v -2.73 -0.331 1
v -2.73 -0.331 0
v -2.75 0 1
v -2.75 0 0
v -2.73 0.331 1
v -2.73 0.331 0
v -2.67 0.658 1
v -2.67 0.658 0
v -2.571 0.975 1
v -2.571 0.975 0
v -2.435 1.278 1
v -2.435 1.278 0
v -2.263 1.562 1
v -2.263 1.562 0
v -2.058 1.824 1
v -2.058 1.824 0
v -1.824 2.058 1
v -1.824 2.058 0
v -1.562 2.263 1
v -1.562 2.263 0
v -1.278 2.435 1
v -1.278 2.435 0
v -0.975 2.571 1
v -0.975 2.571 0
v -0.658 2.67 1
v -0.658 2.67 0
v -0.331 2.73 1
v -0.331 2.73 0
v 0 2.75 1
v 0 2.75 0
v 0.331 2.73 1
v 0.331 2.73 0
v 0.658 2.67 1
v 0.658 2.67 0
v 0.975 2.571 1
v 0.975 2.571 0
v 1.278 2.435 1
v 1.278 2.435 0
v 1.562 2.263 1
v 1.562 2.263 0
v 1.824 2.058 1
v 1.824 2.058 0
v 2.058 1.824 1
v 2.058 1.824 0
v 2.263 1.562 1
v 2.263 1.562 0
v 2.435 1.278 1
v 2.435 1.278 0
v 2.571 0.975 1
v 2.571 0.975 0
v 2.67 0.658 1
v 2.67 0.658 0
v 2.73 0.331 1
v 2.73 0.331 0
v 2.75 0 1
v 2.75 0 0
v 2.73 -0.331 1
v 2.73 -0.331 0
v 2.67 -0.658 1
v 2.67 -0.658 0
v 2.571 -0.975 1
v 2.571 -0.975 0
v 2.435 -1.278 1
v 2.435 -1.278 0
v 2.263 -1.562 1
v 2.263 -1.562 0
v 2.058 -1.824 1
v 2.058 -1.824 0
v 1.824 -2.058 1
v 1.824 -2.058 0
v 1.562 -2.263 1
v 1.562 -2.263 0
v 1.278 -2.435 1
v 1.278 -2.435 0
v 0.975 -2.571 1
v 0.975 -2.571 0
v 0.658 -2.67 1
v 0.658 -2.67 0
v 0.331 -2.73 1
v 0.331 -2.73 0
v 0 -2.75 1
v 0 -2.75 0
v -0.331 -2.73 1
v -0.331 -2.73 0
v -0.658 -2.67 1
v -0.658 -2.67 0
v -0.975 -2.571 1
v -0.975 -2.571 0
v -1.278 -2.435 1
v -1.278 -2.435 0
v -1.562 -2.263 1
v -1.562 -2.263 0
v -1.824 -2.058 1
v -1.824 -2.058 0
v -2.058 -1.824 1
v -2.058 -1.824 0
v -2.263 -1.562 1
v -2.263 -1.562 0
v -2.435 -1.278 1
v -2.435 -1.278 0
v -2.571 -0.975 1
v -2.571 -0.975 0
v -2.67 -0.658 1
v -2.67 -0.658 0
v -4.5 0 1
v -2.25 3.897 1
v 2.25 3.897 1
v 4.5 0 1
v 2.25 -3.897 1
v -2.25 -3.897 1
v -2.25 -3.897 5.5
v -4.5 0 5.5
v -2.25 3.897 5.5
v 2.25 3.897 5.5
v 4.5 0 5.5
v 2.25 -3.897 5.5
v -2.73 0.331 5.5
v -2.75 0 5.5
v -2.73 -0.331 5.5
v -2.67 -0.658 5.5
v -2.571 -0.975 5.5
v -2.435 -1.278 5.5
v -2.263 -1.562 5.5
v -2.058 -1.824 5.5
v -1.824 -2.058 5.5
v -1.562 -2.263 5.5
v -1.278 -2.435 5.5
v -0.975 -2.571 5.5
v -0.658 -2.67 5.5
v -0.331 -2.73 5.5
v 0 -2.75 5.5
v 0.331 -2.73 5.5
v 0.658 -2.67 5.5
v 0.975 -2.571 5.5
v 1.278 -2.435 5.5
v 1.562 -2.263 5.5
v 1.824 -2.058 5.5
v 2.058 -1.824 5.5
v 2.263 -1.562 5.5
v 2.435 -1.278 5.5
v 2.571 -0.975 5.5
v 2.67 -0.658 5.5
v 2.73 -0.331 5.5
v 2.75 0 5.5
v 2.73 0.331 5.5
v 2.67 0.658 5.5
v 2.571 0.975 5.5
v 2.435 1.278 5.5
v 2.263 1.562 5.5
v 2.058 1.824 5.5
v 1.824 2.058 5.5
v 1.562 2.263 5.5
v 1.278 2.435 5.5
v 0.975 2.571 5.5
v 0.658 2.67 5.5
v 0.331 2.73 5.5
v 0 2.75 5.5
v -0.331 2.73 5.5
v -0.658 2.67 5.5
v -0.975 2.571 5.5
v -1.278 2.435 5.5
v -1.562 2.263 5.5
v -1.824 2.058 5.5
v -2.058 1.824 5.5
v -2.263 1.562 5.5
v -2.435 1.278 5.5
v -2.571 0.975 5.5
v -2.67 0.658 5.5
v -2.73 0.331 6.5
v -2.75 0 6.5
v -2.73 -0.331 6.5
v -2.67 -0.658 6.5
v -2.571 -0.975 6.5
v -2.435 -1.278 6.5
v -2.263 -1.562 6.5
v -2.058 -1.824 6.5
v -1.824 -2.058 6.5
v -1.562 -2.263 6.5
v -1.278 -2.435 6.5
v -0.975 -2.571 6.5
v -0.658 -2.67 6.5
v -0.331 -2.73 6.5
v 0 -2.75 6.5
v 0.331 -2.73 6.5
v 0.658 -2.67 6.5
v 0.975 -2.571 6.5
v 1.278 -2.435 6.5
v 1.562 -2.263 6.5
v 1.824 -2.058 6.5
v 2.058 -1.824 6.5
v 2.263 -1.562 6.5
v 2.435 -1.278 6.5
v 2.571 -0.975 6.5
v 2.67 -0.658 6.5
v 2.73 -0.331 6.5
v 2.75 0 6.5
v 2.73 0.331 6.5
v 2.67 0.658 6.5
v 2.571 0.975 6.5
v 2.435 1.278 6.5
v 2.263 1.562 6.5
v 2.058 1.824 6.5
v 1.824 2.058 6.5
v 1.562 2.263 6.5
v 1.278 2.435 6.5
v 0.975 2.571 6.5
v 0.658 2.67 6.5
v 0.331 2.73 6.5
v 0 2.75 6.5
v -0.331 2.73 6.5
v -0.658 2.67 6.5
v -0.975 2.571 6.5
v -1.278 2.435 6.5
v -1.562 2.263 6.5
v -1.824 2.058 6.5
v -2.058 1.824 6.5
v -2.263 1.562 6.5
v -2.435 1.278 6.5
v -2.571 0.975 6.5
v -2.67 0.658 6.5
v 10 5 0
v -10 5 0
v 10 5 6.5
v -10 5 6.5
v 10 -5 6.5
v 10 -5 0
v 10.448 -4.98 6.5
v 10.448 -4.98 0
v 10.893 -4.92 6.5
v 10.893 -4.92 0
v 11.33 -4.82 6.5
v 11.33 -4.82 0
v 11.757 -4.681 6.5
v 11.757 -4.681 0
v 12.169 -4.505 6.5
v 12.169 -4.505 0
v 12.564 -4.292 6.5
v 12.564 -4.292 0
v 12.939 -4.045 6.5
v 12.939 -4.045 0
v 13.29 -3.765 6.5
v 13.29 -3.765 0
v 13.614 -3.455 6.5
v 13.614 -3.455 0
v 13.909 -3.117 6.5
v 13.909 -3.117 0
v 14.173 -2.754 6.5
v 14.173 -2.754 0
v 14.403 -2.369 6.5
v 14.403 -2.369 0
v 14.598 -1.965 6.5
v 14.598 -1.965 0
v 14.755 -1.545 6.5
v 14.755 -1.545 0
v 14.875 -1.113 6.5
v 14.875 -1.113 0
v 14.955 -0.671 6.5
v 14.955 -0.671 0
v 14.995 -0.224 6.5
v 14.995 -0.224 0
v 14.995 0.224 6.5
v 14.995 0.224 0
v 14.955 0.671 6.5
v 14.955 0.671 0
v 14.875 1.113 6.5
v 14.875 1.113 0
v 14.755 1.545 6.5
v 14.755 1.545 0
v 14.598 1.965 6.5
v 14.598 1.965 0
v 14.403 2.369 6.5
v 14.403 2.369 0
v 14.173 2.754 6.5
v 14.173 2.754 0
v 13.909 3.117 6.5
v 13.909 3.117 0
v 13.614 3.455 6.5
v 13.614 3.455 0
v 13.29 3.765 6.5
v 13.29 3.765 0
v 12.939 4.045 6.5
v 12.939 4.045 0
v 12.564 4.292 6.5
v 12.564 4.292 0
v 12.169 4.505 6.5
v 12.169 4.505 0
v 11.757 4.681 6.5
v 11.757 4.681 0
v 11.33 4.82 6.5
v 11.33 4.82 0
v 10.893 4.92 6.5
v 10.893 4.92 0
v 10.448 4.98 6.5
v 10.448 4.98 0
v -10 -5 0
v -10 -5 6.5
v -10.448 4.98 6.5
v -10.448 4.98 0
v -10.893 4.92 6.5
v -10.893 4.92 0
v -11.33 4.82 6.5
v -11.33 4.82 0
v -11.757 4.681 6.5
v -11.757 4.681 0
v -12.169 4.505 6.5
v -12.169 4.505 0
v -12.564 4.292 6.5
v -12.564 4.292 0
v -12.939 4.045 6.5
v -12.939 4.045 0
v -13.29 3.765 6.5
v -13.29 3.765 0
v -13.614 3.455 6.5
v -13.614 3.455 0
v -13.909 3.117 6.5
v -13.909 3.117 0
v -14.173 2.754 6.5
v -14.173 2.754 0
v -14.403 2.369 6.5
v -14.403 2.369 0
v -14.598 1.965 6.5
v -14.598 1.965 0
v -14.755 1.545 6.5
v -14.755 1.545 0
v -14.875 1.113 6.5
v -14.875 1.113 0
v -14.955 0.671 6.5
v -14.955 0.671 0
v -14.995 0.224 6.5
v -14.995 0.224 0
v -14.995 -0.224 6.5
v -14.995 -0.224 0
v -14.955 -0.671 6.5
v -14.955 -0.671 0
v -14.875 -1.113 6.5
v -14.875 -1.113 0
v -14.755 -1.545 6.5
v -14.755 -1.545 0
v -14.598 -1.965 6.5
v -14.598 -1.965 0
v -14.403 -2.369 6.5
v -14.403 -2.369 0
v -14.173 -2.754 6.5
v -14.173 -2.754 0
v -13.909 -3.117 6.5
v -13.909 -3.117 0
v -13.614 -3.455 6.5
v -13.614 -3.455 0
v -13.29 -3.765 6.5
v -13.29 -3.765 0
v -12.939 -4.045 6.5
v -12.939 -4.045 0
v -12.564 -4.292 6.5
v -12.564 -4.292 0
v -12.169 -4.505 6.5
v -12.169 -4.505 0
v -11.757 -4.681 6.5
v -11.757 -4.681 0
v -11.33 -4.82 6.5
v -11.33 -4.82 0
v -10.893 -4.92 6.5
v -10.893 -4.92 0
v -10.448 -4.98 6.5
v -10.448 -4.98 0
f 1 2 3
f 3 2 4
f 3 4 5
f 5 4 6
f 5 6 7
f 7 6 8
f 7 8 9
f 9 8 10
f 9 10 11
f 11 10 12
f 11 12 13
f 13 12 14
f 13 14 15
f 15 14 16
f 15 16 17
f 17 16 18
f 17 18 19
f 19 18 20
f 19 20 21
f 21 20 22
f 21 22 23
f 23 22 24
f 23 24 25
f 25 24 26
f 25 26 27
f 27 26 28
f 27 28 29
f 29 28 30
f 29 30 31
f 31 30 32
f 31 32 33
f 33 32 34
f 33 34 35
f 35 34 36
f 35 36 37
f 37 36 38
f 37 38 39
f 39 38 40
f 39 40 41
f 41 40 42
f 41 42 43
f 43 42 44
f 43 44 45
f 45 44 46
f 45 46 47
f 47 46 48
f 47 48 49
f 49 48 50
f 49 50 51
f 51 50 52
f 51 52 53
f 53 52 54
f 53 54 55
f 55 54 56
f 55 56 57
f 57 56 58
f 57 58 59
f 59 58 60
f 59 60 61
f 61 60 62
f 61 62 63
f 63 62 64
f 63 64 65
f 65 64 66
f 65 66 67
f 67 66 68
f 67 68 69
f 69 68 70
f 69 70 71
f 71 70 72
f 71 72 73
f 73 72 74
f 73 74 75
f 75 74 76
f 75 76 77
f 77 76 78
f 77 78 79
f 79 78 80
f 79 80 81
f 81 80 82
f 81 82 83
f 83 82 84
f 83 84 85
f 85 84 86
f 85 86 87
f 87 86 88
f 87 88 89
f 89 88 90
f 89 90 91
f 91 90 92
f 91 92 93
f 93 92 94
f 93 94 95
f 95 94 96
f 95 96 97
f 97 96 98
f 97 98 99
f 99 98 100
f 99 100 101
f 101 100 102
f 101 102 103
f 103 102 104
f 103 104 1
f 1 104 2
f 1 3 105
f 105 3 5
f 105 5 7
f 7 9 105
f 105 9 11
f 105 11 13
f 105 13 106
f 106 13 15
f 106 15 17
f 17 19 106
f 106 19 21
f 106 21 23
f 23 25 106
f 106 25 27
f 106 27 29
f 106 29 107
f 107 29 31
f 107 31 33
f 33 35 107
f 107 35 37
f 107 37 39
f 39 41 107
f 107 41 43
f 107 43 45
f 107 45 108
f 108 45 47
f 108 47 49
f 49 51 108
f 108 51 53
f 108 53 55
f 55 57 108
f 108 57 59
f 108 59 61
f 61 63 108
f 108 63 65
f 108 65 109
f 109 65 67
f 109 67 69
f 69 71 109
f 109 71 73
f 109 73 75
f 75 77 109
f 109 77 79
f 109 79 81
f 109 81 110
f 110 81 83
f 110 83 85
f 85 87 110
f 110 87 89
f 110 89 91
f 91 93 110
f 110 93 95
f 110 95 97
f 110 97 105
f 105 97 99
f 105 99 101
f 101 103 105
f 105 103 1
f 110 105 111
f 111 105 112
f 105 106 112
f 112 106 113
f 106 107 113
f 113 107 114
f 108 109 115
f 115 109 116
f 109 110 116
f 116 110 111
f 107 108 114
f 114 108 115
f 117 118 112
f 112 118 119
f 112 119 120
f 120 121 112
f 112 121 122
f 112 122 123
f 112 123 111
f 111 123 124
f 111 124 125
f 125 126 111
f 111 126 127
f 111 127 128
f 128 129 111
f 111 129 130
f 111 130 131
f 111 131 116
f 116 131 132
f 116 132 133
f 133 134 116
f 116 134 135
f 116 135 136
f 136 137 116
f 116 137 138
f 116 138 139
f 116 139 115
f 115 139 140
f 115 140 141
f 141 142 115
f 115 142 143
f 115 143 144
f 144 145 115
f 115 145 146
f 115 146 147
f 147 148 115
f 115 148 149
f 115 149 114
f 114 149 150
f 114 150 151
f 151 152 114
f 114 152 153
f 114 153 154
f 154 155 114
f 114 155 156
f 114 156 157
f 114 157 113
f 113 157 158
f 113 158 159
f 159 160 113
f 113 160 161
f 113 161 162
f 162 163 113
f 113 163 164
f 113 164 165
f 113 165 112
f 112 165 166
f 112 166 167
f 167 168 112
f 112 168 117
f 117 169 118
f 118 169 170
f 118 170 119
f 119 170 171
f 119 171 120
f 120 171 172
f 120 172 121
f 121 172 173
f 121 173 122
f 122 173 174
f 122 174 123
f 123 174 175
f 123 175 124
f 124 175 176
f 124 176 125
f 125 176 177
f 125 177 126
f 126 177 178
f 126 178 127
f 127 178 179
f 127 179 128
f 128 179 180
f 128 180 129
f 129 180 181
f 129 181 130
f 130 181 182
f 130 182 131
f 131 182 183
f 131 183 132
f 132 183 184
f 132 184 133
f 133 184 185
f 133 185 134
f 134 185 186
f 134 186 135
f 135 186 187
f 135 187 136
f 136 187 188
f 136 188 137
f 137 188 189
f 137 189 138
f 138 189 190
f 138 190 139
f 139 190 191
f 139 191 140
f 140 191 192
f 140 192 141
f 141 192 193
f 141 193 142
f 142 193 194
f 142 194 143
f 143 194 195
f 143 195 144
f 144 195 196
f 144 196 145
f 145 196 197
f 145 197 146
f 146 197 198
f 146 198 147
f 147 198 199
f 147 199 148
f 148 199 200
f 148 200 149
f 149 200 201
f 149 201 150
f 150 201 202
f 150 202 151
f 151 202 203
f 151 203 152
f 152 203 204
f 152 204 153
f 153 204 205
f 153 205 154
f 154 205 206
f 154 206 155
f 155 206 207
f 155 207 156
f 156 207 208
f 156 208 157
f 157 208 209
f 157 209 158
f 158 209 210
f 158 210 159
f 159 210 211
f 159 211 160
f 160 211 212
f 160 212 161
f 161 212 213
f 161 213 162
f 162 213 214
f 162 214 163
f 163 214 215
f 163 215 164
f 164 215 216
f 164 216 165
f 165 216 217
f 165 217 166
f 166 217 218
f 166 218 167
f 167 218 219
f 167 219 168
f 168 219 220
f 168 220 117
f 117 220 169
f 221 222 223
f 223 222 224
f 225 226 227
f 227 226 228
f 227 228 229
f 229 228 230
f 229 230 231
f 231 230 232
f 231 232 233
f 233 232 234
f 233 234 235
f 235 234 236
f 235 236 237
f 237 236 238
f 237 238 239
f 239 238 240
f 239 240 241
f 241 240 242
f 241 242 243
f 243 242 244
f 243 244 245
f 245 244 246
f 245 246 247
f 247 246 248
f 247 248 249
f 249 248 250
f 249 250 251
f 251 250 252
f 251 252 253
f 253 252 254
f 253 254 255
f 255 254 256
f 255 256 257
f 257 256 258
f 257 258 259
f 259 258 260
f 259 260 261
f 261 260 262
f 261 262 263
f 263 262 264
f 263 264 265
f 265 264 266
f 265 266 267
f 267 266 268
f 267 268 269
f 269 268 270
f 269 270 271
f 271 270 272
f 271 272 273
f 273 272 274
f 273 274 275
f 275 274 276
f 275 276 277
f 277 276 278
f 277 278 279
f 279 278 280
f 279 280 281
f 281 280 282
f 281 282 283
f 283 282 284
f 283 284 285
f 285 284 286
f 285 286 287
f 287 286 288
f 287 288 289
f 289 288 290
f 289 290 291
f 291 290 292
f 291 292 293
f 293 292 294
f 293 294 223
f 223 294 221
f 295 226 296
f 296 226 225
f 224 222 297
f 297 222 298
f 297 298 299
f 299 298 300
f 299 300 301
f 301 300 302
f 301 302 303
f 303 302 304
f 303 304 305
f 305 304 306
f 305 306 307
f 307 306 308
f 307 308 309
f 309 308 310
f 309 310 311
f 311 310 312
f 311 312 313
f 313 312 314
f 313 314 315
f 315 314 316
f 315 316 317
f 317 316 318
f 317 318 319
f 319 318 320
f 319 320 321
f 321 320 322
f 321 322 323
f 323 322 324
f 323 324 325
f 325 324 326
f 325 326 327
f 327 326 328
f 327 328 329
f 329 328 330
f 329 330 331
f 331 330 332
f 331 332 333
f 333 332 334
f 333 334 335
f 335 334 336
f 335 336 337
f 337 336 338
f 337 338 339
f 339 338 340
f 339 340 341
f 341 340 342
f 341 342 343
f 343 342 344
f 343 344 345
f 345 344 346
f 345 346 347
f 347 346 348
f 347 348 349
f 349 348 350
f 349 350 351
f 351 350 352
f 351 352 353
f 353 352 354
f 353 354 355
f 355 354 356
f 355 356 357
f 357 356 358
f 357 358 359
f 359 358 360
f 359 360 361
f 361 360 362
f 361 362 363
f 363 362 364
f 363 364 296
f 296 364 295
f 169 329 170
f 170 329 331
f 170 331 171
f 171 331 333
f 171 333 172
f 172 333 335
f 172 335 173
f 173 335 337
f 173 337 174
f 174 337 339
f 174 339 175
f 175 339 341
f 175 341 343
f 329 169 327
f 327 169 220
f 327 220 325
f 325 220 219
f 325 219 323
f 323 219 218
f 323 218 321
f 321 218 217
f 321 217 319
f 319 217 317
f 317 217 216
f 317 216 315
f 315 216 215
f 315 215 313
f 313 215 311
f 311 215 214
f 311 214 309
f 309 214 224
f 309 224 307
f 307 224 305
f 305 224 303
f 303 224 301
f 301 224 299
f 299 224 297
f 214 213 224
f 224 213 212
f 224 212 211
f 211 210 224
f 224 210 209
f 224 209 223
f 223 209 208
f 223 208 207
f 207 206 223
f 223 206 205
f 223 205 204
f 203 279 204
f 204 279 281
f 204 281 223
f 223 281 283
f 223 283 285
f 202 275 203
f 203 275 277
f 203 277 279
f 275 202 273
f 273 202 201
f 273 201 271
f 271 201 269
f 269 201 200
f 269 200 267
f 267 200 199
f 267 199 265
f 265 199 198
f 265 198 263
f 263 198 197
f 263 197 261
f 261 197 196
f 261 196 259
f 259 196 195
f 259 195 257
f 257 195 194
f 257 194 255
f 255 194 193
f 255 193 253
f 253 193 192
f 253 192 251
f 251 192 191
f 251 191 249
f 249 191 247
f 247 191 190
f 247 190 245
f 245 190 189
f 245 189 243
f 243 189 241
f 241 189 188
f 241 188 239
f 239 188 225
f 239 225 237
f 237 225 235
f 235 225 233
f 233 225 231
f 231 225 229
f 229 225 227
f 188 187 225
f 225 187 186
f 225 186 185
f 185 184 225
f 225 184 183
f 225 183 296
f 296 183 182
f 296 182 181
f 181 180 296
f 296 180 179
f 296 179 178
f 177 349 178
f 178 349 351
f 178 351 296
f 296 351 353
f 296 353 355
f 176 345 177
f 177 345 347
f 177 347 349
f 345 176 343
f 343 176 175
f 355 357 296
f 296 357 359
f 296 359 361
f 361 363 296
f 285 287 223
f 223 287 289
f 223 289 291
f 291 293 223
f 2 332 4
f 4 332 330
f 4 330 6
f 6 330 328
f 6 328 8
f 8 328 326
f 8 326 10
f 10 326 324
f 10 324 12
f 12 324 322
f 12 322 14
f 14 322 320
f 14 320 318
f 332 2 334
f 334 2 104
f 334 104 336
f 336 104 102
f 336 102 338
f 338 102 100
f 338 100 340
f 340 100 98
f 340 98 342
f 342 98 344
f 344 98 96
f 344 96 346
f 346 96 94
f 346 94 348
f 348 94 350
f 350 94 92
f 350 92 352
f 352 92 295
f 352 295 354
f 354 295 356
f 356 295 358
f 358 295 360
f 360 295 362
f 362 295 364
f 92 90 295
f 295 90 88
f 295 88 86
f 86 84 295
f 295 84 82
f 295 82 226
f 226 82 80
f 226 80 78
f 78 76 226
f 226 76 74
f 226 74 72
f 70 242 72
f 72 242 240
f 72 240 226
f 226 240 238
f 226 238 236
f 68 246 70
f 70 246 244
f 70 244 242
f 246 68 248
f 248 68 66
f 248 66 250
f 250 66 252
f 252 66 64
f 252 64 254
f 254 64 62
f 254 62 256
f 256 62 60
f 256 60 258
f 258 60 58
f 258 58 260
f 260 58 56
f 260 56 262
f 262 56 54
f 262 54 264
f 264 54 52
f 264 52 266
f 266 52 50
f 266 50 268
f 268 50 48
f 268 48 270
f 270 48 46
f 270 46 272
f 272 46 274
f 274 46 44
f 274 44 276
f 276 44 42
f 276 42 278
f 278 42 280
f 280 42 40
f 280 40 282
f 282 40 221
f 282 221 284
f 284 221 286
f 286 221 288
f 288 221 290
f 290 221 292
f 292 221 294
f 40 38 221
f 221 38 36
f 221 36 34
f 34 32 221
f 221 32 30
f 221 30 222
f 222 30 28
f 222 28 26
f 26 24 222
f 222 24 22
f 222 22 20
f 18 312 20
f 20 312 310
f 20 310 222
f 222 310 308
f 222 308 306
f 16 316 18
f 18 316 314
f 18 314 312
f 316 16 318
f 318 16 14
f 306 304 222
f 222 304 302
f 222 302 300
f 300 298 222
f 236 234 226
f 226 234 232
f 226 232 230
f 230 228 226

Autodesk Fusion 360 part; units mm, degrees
sketch "Sketch2" plane through (0, 0, 0) normal (0, 0, 1) x (1, 0, 0)
  line L0 (-4.5, 0) -> (4.5, 0)
  line L1 (-4.5, 0) -> (-2.25, 3.8971)
  line L2 (4.5, 0) -> (2.25, 3.8971)
  line L3 (4.5, 0) -> (9, 0) construction
  line L4 (-2.25, 3.8971) -> (2.25, 3.8971)
  line L5 (-4.5, 0) -> (-2.25, -3.8971)
  line L6 (4.5, 0) -> (2.25, -3.8971)
  line L7 (2.25, -3.8971) -> (-2.25, -3.8971)
  line L8 (-10, 5) -> (10, 5)
  line L9 (10, -5) -> (-10, -5)
  arc A0 (-10, 5) -> (-10, -5) centre (-10, 0) ccw
  arc A1 (10, -5) -> (10, 5) centre (10, 0) ccw
  circle A2 centre (0, 0) radius 2.75
  dimension "d15" = 120
  dimension "d16" = 120
  dimension "d17" = 5.5
extrude "Extrude3" add sketch "Sketch2" along normal blind 6.5 contours L0 L1 L2 L4 A2 | L0 L5 L6 L7 A2 | L8 L9 A0 A1
extrude "Extrude4" cut sketch "Sketch2" along normal blind 5.5 contours L0 L1 L2 L4 A2 | L0 L5 L6 L7 A2
extrude "Extrude5" add sketch "Sketch2" along normal blind 1 contours L0 L1 L2 L4 A2 | L0 L5 L6 L7 A2
